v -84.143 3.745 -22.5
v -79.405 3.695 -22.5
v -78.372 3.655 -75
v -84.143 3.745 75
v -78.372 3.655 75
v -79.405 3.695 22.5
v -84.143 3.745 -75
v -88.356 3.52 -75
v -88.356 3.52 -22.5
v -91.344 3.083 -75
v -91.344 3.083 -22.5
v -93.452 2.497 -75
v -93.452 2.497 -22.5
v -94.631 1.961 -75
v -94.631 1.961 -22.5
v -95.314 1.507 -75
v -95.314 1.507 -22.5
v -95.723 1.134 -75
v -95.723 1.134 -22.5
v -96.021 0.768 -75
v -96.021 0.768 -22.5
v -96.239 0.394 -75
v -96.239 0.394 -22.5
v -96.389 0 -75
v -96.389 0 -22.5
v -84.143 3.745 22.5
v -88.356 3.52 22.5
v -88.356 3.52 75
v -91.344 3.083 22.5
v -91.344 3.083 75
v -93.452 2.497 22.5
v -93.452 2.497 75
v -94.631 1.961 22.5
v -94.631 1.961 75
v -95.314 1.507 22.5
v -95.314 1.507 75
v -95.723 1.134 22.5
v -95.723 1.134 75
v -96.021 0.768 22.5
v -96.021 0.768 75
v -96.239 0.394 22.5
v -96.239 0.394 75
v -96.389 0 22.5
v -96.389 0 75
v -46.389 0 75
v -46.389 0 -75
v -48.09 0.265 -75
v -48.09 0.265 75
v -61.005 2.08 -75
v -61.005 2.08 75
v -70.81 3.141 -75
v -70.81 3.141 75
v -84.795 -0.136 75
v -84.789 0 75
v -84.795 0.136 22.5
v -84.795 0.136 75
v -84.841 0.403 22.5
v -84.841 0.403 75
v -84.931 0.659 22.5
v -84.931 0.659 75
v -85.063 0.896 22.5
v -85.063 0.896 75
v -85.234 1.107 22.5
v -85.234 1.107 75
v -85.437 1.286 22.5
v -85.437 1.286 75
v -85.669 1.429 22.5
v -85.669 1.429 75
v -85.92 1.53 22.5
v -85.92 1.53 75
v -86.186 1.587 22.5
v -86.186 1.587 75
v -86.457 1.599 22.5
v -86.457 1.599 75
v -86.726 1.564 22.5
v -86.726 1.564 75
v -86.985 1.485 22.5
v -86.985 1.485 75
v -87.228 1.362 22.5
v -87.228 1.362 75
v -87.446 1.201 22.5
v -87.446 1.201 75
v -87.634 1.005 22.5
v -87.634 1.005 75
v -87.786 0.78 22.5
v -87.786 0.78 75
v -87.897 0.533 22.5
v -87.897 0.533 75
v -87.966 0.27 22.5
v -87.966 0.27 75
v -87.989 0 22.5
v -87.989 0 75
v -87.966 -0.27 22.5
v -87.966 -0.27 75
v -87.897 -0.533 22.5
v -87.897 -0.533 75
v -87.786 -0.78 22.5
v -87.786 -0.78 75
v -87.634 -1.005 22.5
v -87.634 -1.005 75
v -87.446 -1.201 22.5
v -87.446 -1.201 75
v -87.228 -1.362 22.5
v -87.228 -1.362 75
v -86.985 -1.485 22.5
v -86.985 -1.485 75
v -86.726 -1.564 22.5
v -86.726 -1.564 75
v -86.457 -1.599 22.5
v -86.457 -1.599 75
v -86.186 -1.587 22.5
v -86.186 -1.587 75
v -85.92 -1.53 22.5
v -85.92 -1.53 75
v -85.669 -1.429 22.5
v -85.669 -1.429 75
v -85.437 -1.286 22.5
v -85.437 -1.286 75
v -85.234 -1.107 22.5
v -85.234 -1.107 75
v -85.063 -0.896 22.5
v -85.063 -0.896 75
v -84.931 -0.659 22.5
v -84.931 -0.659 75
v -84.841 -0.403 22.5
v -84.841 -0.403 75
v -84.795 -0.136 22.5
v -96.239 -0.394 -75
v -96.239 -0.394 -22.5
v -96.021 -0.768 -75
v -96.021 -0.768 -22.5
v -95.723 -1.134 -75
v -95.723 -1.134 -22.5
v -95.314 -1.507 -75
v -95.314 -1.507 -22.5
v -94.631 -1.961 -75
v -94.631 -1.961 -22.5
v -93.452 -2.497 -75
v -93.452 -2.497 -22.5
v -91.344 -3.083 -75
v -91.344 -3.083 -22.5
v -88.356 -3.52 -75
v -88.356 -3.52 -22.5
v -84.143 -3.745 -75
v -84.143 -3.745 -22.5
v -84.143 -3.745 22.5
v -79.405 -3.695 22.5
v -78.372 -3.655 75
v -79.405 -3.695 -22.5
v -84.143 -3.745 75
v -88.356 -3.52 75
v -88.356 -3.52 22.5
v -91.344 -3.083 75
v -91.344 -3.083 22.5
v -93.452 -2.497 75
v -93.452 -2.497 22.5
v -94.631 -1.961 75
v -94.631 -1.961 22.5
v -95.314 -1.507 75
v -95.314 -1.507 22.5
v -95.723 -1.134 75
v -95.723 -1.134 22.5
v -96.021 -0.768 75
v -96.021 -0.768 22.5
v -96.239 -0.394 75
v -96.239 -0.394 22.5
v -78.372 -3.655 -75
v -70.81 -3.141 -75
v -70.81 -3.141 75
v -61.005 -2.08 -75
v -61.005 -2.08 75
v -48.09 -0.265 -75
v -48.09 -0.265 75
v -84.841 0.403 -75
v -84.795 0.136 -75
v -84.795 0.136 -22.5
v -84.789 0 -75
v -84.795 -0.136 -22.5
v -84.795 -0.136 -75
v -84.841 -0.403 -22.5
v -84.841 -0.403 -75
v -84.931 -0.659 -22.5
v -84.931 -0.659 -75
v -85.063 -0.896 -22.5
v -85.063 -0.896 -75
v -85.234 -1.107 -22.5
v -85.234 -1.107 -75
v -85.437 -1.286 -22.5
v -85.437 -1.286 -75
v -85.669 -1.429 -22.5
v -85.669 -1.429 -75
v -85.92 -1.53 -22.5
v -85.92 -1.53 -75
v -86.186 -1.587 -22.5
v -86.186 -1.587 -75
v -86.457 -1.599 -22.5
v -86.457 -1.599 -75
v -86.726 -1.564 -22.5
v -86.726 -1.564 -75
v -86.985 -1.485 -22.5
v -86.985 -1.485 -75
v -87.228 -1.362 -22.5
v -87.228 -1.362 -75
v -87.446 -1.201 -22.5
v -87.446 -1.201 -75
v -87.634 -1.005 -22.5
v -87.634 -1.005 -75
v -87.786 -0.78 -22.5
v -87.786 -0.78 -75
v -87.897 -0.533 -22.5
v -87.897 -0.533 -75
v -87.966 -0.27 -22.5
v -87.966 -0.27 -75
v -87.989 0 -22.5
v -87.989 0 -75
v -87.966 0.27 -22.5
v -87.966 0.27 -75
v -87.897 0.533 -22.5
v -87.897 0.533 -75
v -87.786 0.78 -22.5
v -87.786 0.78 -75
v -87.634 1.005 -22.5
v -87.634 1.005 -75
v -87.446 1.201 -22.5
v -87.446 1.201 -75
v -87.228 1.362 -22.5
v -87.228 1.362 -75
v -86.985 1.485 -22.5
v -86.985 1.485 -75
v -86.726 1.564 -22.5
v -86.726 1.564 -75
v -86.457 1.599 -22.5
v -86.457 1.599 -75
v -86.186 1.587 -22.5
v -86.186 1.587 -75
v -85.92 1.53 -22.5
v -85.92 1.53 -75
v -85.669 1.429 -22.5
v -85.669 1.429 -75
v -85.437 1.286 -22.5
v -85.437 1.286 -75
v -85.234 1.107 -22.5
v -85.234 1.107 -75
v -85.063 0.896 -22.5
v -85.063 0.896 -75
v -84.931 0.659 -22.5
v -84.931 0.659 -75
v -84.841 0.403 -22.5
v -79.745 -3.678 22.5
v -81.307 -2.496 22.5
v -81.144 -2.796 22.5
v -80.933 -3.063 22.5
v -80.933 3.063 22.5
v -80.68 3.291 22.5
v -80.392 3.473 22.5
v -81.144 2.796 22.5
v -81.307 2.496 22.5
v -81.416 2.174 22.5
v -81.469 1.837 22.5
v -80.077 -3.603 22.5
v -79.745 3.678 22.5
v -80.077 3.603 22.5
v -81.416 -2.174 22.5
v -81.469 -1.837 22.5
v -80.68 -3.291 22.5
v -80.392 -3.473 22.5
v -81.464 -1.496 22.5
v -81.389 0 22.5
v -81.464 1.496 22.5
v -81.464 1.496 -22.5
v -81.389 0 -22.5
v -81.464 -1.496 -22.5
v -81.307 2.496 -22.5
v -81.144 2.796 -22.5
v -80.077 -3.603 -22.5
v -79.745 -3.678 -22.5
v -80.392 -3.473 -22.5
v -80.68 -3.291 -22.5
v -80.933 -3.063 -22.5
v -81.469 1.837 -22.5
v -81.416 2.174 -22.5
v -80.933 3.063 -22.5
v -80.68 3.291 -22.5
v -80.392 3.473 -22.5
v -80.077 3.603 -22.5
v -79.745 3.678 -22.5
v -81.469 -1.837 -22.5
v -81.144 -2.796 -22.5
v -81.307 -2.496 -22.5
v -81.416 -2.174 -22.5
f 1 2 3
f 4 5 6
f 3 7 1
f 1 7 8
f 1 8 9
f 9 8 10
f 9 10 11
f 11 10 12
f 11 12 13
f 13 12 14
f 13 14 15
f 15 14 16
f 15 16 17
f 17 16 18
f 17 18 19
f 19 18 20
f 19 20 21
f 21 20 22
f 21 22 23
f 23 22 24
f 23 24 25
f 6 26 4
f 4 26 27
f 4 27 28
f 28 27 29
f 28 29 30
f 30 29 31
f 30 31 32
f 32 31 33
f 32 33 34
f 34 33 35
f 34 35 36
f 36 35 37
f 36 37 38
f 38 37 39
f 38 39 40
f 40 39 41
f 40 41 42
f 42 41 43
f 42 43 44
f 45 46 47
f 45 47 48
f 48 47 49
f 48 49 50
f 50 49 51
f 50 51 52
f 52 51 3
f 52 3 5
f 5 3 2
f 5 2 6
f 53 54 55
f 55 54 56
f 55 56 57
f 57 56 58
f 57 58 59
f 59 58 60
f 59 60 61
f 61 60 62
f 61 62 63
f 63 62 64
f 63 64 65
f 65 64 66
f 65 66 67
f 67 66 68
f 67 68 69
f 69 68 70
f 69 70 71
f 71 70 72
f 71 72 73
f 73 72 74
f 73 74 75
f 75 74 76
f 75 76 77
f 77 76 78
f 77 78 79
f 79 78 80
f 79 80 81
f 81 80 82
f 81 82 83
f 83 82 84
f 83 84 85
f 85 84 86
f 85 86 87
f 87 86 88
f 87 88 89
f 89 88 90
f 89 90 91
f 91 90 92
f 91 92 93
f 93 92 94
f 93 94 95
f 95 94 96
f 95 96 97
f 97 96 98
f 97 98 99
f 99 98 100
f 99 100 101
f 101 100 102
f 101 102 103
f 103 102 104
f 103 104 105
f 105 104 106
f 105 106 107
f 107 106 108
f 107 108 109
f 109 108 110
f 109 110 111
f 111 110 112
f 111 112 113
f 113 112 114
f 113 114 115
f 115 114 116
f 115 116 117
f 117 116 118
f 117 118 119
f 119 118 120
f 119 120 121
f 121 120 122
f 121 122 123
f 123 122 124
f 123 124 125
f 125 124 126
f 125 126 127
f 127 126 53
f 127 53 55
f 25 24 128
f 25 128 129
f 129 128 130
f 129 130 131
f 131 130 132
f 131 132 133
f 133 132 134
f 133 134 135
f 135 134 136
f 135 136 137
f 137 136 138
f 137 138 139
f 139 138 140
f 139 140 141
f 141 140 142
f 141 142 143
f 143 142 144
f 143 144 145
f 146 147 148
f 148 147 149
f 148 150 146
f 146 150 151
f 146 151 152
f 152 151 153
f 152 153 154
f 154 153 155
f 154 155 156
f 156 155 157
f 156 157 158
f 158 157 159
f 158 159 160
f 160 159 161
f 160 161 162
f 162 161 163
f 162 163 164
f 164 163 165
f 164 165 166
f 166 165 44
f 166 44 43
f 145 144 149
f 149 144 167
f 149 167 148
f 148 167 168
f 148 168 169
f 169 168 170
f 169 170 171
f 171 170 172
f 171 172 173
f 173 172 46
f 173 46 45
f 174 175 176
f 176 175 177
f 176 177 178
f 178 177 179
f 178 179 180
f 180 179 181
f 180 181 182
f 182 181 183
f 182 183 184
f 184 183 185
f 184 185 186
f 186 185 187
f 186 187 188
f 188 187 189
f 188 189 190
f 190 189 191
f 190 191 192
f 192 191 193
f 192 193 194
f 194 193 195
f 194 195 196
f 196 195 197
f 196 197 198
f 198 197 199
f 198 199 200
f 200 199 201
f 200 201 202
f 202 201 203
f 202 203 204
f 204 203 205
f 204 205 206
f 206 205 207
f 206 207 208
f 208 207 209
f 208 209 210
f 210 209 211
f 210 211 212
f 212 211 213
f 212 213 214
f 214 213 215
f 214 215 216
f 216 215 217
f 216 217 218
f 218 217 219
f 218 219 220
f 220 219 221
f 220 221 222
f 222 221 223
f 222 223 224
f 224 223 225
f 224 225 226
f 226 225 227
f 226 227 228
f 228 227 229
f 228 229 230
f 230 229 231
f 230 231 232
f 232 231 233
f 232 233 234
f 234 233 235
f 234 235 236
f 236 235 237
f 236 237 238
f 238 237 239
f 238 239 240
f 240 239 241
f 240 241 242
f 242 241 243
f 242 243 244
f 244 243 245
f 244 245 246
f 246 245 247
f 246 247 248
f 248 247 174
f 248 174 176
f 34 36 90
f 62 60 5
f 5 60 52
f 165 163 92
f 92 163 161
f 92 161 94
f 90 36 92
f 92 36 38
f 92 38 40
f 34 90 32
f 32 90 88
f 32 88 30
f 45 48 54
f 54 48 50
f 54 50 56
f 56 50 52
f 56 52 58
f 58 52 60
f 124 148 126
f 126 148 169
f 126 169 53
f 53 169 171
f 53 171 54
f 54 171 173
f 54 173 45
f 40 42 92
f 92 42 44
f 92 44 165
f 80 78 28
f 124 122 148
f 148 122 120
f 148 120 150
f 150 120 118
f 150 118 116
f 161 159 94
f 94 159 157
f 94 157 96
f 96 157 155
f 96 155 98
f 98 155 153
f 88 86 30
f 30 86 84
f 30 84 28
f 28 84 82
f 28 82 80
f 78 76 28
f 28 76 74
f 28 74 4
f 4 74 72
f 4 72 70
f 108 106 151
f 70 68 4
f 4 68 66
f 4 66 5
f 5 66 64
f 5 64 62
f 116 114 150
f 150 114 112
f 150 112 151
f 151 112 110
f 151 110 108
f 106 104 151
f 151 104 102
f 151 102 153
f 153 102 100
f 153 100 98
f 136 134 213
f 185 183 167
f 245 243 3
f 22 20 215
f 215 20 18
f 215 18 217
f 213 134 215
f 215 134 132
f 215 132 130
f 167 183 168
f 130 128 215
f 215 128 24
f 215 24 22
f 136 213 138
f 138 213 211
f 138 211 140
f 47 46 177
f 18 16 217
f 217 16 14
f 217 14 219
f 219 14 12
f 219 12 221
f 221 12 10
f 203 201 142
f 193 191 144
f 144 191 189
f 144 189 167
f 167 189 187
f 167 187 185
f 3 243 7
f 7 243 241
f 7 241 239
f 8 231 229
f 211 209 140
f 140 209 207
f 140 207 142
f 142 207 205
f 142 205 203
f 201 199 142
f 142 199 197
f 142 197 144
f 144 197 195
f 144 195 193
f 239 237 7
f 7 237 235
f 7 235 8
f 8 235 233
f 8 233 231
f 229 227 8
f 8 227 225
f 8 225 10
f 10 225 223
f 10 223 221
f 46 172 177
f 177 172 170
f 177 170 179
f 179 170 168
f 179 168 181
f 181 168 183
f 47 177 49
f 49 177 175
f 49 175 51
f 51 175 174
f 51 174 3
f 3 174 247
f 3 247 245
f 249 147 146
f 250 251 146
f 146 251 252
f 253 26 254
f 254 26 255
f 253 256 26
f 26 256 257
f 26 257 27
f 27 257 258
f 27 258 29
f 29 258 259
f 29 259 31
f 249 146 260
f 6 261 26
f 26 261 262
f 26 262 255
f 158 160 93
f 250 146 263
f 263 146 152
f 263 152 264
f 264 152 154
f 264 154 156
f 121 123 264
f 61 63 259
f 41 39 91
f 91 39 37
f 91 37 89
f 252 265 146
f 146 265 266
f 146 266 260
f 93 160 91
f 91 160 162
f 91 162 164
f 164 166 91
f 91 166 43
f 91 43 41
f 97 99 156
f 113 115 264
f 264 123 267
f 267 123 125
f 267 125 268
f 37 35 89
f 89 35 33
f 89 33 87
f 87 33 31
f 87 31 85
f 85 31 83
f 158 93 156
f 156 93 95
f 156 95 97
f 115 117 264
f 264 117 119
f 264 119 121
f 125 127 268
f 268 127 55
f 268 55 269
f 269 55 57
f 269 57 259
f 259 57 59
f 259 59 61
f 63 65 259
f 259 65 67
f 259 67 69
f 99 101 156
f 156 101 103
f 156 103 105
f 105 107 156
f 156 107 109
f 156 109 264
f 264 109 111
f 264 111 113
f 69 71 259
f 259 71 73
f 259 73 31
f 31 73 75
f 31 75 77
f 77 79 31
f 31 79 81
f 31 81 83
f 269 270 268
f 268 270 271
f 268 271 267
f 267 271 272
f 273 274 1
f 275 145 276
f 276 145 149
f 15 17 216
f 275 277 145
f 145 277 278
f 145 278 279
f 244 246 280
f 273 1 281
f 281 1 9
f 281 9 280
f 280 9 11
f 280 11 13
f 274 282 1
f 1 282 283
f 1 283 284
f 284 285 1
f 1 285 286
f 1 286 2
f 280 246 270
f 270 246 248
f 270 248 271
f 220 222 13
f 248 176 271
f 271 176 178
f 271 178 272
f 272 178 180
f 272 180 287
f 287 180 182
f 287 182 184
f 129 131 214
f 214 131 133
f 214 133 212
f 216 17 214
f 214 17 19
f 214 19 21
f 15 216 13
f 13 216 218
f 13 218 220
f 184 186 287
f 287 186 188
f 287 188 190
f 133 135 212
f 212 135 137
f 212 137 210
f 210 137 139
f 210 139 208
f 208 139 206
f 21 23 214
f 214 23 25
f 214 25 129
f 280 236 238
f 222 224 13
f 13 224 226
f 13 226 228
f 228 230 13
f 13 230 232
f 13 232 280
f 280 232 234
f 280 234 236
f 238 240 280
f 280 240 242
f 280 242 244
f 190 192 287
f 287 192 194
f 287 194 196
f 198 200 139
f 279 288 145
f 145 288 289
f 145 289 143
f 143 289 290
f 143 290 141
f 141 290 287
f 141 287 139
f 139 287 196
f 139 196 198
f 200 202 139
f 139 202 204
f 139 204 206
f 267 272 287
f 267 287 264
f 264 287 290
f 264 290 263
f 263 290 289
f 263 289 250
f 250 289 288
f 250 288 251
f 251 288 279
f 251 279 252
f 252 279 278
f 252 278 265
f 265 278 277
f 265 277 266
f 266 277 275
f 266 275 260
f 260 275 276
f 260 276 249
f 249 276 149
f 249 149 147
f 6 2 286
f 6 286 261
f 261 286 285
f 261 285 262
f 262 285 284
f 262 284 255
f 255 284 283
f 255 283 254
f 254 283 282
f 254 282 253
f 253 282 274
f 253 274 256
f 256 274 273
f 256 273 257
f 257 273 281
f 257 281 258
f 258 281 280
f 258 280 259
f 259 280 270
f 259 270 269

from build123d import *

# Parameters (mm, degrees)
BOSS_EXTRUDE1_DEPTH      = 75
BOSS_EXTRUDE1_DEPTH_BACK = 75
SKETCH3_R                = 1.6
SKETCH1_W                = 15
SKETCH1_H                = 45
FILLET1_R                = 2


with BuildPart() as part:
    # Sketch3 → Boss-Extrude1 (new, two sides: drawn at the far end of the back side and taken through both)
    with BuildSketch(Plane.XY.offset(-BOSS_EXTRUDE1_DEPTH_BACK)):
        with BuildLine():
            add(Edge.make_bspline(
                [(-96.388888889, 0), (-94.217851925, -7.513577122), (-46.388888889, 0)],
                knots=[0, 0, 0, 1, 1, 1], degree=2))
            add(Edge.make_bspline(
                [(-96.388888889, 0), (-94.217851925, 7.513577122), (-46.388888889, 0)],
                knots=[0, 0, 0, 1, 1, 1], degree=2))
        make_face()
        with Locations((-86.388888889, 0)):
            Circle(SKETCH3_R, mode=Mode.SUBTRACT)
    extrude(amount=BOSS_EXTRUDE1_DEPTH + BOSS_EXTRUDE1_DEPTH_BACK)

    # Sketch1 → Cut-Revolve1 (revolve, cut)
    with BuildSketch(Plane(origin=(0, 0, 0), x_dir=(1, 0, 0), z_dir=(0, 1, 0))):
        with Locations((-88.888888889, 0)):
            Rectangle(SKETCH1_W, SKETCH1_H)
    revolve(axis=Axis((-96.388888889, 0, -75), (0, 0, 1)), mode=Mode.SUBTRACT)

    # Fillet1
    fillet1_edges = [part.edges().sort_by_distance(p)[0] for p in [
        (-81.86563433, -3.751676562, -11.2499997),
        (-81.86563433, 3.751676562, 11.25),
    ]]
    fillet(fillet1_edges, radius=FILLET1_R)


solid = part.part
